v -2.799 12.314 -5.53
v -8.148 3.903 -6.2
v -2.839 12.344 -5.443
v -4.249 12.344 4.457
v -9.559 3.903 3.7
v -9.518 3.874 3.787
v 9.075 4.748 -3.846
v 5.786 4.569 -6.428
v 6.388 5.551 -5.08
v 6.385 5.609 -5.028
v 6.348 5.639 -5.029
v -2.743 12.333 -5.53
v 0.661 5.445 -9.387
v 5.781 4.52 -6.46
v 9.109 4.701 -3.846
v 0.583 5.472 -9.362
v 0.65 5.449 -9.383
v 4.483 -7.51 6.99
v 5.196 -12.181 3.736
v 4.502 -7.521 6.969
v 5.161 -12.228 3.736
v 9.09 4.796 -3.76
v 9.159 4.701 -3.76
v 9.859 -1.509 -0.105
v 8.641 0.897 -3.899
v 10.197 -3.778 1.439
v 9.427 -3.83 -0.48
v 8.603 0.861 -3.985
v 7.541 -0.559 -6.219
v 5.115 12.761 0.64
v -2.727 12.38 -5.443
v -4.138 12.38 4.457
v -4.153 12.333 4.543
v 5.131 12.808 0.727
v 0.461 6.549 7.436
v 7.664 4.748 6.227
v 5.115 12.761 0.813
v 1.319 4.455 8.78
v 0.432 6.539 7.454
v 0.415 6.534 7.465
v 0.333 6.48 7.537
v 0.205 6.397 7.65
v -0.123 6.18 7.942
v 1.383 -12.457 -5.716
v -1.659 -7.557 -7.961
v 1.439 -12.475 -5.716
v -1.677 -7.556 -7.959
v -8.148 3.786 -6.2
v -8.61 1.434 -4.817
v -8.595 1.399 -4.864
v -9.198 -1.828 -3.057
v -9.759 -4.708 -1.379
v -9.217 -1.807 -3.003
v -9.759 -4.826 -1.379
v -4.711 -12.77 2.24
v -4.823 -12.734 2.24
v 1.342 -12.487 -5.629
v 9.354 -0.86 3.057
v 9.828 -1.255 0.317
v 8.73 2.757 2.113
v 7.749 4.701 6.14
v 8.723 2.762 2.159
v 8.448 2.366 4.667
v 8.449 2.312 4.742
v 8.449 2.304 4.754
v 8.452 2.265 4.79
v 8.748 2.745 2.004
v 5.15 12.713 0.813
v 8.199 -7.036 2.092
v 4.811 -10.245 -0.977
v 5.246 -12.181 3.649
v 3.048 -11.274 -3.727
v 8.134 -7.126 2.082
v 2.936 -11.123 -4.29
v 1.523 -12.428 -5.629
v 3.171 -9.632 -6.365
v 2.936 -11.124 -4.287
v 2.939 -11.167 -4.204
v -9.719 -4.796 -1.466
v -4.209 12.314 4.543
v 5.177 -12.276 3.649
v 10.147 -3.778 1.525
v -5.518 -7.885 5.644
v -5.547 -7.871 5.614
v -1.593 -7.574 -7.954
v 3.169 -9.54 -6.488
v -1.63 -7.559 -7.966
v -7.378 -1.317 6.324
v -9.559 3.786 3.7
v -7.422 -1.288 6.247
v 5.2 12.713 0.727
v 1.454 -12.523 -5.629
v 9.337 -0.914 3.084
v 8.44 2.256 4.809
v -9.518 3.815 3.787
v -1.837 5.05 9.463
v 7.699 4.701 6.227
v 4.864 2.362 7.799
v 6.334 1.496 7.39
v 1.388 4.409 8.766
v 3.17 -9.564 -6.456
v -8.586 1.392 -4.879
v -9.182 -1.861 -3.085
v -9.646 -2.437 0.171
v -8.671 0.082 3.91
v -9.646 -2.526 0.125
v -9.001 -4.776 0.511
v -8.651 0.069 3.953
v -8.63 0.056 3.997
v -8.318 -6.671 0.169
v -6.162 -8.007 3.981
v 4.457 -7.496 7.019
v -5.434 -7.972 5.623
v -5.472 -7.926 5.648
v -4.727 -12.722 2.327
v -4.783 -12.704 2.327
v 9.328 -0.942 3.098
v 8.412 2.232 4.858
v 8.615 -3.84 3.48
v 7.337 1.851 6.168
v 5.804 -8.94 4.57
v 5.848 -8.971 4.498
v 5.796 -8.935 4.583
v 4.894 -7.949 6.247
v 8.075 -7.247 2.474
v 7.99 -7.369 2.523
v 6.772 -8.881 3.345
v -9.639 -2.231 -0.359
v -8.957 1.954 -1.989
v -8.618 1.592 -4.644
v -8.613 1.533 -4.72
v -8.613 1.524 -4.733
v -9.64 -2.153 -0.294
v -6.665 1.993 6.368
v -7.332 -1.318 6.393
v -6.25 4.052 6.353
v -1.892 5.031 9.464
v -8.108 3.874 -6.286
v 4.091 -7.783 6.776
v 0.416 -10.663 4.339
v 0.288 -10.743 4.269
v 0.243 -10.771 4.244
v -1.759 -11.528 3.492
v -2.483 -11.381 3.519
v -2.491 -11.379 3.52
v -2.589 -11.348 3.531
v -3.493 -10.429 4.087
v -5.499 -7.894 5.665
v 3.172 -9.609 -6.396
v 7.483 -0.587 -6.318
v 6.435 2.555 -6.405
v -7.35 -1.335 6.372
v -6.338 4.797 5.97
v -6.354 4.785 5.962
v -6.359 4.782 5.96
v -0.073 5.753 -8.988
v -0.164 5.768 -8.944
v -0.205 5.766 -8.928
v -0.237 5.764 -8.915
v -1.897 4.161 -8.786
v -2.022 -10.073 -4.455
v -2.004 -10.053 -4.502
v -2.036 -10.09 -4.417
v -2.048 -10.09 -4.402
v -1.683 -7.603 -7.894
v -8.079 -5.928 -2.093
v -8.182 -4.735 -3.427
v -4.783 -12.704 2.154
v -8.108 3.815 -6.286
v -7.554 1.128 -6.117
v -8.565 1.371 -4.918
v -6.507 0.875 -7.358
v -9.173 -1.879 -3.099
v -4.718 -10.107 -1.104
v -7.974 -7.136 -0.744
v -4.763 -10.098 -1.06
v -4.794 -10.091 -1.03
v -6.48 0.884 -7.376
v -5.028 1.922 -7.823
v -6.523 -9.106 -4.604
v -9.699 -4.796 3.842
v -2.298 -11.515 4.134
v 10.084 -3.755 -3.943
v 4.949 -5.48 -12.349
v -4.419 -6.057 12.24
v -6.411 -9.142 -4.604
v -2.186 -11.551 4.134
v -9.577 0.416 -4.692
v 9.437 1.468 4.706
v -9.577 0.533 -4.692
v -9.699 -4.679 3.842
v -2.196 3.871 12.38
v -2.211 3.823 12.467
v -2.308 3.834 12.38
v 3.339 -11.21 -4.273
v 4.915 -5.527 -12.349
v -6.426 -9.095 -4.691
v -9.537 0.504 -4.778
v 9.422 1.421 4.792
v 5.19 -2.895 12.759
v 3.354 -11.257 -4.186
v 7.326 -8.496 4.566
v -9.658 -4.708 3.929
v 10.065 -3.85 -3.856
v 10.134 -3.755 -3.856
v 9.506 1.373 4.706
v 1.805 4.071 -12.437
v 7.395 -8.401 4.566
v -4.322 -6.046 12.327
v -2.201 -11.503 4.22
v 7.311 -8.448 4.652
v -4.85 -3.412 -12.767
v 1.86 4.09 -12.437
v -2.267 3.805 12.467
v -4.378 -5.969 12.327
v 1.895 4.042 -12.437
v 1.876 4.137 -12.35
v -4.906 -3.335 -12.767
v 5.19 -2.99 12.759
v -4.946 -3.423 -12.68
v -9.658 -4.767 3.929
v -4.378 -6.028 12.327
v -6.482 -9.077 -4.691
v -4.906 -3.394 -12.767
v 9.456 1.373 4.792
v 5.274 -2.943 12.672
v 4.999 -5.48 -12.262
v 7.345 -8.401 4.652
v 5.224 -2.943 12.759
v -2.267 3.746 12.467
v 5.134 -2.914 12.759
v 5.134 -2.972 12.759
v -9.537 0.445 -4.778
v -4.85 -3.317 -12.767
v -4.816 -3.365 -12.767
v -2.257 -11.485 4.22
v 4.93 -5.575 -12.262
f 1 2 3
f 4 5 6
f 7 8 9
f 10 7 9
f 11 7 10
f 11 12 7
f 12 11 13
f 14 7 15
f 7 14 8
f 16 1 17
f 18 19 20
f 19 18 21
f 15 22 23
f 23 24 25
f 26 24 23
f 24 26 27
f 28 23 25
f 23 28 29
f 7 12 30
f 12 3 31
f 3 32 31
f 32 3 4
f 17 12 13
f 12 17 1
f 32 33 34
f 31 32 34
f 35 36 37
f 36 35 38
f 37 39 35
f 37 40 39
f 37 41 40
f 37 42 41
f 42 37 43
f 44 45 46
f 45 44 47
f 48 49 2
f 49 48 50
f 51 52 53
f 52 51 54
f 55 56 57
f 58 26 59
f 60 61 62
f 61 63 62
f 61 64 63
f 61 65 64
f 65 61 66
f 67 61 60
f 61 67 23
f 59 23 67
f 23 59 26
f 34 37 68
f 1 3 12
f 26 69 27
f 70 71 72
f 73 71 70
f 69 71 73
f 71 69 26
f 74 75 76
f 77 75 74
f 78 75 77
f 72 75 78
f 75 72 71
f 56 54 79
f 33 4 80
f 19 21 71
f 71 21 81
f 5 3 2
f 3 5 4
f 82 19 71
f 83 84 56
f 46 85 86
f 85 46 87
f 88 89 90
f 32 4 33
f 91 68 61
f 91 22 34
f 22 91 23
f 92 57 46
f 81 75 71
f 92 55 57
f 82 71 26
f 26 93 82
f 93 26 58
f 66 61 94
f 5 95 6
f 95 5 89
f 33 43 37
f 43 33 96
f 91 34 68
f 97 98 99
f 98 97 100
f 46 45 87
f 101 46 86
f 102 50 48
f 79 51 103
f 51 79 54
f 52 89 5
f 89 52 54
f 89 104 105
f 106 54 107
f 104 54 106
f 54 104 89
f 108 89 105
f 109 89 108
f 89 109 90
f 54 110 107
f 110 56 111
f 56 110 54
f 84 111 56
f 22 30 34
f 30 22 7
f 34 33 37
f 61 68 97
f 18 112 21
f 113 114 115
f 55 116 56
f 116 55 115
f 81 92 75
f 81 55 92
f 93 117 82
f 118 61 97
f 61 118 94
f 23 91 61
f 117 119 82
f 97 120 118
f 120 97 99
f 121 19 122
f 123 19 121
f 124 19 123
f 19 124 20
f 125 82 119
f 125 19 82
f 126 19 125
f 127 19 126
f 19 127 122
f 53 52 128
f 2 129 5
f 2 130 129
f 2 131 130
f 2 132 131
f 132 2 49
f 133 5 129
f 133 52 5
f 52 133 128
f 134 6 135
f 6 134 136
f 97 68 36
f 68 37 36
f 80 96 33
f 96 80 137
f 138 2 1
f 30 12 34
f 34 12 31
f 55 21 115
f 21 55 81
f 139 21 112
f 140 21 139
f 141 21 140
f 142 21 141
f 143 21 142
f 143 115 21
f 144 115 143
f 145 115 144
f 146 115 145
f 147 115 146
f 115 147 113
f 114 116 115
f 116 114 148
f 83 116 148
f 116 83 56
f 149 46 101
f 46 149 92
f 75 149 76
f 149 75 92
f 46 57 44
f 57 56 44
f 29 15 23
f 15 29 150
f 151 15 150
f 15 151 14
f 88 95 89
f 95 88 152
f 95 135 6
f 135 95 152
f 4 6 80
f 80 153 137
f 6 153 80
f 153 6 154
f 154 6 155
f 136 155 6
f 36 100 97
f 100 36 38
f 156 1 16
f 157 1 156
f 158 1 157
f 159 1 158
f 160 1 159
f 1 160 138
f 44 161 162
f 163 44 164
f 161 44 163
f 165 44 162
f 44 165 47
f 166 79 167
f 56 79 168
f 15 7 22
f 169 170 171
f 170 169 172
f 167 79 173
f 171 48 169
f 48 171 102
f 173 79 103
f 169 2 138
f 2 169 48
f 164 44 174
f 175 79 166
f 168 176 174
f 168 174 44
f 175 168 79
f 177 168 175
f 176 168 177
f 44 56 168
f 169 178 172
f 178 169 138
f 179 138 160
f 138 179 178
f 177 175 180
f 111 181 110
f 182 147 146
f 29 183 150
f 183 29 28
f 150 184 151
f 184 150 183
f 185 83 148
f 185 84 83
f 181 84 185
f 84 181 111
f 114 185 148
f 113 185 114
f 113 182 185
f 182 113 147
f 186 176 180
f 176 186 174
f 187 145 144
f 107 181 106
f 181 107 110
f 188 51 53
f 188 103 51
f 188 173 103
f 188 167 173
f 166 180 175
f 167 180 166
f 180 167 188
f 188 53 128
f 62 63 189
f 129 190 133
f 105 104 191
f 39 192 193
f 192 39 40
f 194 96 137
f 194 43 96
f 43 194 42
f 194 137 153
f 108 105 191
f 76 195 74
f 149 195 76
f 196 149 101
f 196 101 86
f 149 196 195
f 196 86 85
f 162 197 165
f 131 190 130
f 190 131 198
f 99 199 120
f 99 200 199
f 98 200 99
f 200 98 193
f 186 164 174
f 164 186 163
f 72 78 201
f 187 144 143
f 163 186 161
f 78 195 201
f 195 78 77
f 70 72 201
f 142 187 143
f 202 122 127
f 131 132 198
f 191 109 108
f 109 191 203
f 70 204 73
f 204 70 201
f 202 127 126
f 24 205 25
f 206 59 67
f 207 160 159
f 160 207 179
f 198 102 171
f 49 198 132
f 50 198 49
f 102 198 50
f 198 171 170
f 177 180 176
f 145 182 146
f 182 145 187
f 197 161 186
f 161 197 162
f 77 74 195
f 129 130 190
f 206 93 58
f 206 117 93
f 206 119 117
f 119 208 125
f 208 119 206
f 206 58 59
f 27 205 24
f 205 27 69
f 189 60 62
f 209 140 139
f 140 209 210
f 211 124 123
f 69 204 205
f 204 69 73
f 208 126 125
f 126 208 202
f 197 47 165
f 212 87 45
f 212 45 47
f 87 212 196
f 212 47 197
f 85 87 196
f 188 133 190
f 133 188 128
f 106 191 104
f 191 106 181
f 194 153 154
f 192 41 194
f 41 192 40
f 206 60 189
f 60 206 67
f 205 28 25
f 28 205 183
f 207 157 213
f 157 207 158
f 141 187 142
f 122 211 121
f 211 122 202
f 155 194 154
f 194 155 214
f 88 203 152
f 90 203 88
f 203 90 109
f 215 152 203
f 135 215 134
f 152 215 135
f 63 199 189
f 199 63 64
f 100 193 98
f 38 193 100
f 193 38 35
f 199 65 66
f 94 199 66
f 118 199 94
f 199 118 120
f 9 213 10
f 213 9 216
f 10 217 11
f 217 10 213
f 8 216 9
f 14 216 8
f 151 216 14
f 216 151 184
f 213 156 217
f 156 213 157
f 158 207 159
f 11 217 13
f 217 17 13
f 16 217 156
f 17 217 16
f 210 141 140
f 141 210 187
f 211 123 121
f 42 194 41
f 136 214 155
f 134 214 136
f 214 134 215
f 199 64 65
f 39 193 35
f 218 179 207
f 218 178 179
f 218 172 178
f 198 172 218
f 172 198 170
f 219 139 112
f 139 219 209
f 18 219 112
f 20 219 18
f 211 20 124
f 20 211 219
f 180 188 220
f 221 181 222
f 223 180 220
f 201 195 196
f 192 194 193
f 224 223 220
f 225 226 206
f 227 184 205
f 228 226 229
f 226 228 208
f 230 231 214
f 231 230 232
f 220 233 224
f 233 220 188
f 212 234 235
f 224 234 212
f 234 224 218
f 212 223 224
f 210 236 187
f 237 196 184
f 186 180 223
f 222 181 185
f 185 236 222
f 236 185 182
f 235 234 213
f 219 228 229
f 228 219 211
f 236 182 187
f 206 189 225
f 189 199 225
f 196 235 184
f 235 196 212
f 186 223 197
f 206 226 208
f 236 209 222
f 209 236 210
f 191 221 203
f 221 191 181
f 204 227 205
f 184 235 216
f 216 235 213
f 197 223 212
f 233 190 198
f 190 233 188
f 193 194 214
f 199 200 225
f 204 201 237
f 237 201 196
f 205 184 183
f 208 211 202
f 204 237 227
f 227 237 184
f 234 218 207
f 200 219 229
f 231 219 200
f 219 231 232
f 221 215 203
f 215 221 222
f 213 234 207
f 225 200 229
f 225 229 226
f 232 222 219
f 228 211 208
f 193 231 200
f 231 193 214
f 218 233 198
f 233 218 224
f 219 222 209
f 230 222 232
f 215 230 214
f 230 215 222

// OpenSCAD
// Auto-generated OpenSCAD file

    inner_points = 10*[[-0.9496117063645658, 0.04744255494879848, -0.4691531418453987], [1.0033624630947084, -0.3755390051682693, -0.3856157656249948], [-0.2785657017526601, 0.7881225693198912, -0.43613229985679836], [-0.6441706262468343, -0.9047282394808283, -0.460405295723797], [0.697921382976977, 0.5766317892613573, -0.3943636117465964], [0.33231645848280283, -1.1162190195393622, -0.41863660761359506], [-0.7507105153515918, 0.5036271349789806, 0.39821871909793793], [-0.961792616925356, -0.4737407351799904, 0.3842046984000876], [0.9406147283349547, 0.13731435858522523, 0.47056420907030583], [0.7295326267611906, -0.8400535115737459, 0.4565501883724555], [0.2004931572785636, 0.8091546818615886, 0.44139847443304703], [-0.22167104586896497, -1.1455810584563535, 0.4133704330373464], [-0.4865502109048858, -0.3364700228427917, -1.2680180766347915], [0.48993687382475126, -0.5479608029013256, -1.2262493885245895], [0.18449579370701985, 0.40420999152830095, -1.2349972346461915], [-0.22268754129996676, 0.3775482624765989, 1.2380376619553881], [-0.43376964287373104, -0.5998196076823722, 1.2240236412575376], [0.5174340297564245, -0.29429206079976433, 1.2672033965926468]];

    outer_points = 10*[[-0.1619876991428545, 0.42727685980119834, 0.9870193373470707], [0.1201169529545242, 0.42727685980119834, -0.992984946806127], [0.7648573506247376, 0.4700858108095228, 0.6140238314292694], [-0.9477804228617573, 0.3844679087928739, 0.370012701188273], [0.9059096766734269, 0.4700858108095228, -0.37597831064732945], [-0.806728096813068, 0.3844679087928739, -0.6199894408883259], [0.3931764152464893, -0.40256110041281673, 0.930789755433826], [-0.5956154643002599, -0.45199261918957995, 0.7899098637039218], [0.6374862104885902, -0.40256110041281673, -0.7839442542448654], [-0.35130566905815896, -0.45199261918957995, -0.9248241459747696], [1.0097272526409142, -0.3778453410244351, 0.14386269645943234], [-0.967856506452584, -0.47670837857796156, -0.13789708700037592], [-0.4168583108991429, 1.228505635767035, 0.44565677877170834], [-0.27580598485045354, 1.228505635767035, -0.5443453633048905], [0.5099867388684493, 1.2713145867753595, 0.07266127285390714], [0.5145701595267401, -1.2180595267147616, 0.36490471803782565], [-0.47422172002000895, -1.2674910454915247, 0.2240248263079215], [0.14232911737441603, -1.2427752861031431, -0.5629022326664721]];

    // Convex hull for inner set (I)
    module inner_hull() {
        hull() {
            for (p = inner_points) {
                translate(p) sphere(r=0.1);
            }
        }
    }

    // Convex hull for outer set (O) minus inner hull (O \ I)
    module outer_minus_inner() {
        difference() {
            hull() {
                for (p = outer_points) {
                    translate(p) sphere(r=0.1);
                }
            }
            inner_hull(); // Subtract inner hull
        }
    }

    // Convex hull for outer set (O) minus all translated inner hulls
    module outer_minus_AllTranslationInner() {
        difference() {
            hull() {
                for (p = outer_points) {
                    translate(p) sphere(r=0.1);
                }
            }
            hull() {
                translate([0,0,50]) inner_hull();
                translate([0,0,-50]) inner_hull();
            }; // Subtract translated inner hulls
        }
    }

    // Difference between outer_minus_inner and outer_minus_AllTranslationInner
    module outer_minus_inner_diff() {
        difference() {
            // Outer minus inner
            difference() {
                hull() {
                    for (p = outer_points) {
                        translate(p) sphere(r=0.1);
                    }
                }
                inner_hull();
            }

            // Subtract Outer minus AllTranslationInner
            difference() {
                hull() {
                    for (p = outer_points) {
                        translate(p) sphere(r=0.1);
                    }
                }
                hull() {
                    translate([0,0,50]) inner_hull();
                    translate([0,0,-50]) inner_hull();
                };
            }
        }
    }

    // Rendering all with colors applied
    color([1, 0, 0, 0.5]) inner_hull(); // Transparent red
    color([0, 1, 0, 1]) outer_minus_AllTranslationInner(); // Opaque green
    color([1, 1, 0, 1]) outer_minus_inner_diff(); // Opaque yellow
    
